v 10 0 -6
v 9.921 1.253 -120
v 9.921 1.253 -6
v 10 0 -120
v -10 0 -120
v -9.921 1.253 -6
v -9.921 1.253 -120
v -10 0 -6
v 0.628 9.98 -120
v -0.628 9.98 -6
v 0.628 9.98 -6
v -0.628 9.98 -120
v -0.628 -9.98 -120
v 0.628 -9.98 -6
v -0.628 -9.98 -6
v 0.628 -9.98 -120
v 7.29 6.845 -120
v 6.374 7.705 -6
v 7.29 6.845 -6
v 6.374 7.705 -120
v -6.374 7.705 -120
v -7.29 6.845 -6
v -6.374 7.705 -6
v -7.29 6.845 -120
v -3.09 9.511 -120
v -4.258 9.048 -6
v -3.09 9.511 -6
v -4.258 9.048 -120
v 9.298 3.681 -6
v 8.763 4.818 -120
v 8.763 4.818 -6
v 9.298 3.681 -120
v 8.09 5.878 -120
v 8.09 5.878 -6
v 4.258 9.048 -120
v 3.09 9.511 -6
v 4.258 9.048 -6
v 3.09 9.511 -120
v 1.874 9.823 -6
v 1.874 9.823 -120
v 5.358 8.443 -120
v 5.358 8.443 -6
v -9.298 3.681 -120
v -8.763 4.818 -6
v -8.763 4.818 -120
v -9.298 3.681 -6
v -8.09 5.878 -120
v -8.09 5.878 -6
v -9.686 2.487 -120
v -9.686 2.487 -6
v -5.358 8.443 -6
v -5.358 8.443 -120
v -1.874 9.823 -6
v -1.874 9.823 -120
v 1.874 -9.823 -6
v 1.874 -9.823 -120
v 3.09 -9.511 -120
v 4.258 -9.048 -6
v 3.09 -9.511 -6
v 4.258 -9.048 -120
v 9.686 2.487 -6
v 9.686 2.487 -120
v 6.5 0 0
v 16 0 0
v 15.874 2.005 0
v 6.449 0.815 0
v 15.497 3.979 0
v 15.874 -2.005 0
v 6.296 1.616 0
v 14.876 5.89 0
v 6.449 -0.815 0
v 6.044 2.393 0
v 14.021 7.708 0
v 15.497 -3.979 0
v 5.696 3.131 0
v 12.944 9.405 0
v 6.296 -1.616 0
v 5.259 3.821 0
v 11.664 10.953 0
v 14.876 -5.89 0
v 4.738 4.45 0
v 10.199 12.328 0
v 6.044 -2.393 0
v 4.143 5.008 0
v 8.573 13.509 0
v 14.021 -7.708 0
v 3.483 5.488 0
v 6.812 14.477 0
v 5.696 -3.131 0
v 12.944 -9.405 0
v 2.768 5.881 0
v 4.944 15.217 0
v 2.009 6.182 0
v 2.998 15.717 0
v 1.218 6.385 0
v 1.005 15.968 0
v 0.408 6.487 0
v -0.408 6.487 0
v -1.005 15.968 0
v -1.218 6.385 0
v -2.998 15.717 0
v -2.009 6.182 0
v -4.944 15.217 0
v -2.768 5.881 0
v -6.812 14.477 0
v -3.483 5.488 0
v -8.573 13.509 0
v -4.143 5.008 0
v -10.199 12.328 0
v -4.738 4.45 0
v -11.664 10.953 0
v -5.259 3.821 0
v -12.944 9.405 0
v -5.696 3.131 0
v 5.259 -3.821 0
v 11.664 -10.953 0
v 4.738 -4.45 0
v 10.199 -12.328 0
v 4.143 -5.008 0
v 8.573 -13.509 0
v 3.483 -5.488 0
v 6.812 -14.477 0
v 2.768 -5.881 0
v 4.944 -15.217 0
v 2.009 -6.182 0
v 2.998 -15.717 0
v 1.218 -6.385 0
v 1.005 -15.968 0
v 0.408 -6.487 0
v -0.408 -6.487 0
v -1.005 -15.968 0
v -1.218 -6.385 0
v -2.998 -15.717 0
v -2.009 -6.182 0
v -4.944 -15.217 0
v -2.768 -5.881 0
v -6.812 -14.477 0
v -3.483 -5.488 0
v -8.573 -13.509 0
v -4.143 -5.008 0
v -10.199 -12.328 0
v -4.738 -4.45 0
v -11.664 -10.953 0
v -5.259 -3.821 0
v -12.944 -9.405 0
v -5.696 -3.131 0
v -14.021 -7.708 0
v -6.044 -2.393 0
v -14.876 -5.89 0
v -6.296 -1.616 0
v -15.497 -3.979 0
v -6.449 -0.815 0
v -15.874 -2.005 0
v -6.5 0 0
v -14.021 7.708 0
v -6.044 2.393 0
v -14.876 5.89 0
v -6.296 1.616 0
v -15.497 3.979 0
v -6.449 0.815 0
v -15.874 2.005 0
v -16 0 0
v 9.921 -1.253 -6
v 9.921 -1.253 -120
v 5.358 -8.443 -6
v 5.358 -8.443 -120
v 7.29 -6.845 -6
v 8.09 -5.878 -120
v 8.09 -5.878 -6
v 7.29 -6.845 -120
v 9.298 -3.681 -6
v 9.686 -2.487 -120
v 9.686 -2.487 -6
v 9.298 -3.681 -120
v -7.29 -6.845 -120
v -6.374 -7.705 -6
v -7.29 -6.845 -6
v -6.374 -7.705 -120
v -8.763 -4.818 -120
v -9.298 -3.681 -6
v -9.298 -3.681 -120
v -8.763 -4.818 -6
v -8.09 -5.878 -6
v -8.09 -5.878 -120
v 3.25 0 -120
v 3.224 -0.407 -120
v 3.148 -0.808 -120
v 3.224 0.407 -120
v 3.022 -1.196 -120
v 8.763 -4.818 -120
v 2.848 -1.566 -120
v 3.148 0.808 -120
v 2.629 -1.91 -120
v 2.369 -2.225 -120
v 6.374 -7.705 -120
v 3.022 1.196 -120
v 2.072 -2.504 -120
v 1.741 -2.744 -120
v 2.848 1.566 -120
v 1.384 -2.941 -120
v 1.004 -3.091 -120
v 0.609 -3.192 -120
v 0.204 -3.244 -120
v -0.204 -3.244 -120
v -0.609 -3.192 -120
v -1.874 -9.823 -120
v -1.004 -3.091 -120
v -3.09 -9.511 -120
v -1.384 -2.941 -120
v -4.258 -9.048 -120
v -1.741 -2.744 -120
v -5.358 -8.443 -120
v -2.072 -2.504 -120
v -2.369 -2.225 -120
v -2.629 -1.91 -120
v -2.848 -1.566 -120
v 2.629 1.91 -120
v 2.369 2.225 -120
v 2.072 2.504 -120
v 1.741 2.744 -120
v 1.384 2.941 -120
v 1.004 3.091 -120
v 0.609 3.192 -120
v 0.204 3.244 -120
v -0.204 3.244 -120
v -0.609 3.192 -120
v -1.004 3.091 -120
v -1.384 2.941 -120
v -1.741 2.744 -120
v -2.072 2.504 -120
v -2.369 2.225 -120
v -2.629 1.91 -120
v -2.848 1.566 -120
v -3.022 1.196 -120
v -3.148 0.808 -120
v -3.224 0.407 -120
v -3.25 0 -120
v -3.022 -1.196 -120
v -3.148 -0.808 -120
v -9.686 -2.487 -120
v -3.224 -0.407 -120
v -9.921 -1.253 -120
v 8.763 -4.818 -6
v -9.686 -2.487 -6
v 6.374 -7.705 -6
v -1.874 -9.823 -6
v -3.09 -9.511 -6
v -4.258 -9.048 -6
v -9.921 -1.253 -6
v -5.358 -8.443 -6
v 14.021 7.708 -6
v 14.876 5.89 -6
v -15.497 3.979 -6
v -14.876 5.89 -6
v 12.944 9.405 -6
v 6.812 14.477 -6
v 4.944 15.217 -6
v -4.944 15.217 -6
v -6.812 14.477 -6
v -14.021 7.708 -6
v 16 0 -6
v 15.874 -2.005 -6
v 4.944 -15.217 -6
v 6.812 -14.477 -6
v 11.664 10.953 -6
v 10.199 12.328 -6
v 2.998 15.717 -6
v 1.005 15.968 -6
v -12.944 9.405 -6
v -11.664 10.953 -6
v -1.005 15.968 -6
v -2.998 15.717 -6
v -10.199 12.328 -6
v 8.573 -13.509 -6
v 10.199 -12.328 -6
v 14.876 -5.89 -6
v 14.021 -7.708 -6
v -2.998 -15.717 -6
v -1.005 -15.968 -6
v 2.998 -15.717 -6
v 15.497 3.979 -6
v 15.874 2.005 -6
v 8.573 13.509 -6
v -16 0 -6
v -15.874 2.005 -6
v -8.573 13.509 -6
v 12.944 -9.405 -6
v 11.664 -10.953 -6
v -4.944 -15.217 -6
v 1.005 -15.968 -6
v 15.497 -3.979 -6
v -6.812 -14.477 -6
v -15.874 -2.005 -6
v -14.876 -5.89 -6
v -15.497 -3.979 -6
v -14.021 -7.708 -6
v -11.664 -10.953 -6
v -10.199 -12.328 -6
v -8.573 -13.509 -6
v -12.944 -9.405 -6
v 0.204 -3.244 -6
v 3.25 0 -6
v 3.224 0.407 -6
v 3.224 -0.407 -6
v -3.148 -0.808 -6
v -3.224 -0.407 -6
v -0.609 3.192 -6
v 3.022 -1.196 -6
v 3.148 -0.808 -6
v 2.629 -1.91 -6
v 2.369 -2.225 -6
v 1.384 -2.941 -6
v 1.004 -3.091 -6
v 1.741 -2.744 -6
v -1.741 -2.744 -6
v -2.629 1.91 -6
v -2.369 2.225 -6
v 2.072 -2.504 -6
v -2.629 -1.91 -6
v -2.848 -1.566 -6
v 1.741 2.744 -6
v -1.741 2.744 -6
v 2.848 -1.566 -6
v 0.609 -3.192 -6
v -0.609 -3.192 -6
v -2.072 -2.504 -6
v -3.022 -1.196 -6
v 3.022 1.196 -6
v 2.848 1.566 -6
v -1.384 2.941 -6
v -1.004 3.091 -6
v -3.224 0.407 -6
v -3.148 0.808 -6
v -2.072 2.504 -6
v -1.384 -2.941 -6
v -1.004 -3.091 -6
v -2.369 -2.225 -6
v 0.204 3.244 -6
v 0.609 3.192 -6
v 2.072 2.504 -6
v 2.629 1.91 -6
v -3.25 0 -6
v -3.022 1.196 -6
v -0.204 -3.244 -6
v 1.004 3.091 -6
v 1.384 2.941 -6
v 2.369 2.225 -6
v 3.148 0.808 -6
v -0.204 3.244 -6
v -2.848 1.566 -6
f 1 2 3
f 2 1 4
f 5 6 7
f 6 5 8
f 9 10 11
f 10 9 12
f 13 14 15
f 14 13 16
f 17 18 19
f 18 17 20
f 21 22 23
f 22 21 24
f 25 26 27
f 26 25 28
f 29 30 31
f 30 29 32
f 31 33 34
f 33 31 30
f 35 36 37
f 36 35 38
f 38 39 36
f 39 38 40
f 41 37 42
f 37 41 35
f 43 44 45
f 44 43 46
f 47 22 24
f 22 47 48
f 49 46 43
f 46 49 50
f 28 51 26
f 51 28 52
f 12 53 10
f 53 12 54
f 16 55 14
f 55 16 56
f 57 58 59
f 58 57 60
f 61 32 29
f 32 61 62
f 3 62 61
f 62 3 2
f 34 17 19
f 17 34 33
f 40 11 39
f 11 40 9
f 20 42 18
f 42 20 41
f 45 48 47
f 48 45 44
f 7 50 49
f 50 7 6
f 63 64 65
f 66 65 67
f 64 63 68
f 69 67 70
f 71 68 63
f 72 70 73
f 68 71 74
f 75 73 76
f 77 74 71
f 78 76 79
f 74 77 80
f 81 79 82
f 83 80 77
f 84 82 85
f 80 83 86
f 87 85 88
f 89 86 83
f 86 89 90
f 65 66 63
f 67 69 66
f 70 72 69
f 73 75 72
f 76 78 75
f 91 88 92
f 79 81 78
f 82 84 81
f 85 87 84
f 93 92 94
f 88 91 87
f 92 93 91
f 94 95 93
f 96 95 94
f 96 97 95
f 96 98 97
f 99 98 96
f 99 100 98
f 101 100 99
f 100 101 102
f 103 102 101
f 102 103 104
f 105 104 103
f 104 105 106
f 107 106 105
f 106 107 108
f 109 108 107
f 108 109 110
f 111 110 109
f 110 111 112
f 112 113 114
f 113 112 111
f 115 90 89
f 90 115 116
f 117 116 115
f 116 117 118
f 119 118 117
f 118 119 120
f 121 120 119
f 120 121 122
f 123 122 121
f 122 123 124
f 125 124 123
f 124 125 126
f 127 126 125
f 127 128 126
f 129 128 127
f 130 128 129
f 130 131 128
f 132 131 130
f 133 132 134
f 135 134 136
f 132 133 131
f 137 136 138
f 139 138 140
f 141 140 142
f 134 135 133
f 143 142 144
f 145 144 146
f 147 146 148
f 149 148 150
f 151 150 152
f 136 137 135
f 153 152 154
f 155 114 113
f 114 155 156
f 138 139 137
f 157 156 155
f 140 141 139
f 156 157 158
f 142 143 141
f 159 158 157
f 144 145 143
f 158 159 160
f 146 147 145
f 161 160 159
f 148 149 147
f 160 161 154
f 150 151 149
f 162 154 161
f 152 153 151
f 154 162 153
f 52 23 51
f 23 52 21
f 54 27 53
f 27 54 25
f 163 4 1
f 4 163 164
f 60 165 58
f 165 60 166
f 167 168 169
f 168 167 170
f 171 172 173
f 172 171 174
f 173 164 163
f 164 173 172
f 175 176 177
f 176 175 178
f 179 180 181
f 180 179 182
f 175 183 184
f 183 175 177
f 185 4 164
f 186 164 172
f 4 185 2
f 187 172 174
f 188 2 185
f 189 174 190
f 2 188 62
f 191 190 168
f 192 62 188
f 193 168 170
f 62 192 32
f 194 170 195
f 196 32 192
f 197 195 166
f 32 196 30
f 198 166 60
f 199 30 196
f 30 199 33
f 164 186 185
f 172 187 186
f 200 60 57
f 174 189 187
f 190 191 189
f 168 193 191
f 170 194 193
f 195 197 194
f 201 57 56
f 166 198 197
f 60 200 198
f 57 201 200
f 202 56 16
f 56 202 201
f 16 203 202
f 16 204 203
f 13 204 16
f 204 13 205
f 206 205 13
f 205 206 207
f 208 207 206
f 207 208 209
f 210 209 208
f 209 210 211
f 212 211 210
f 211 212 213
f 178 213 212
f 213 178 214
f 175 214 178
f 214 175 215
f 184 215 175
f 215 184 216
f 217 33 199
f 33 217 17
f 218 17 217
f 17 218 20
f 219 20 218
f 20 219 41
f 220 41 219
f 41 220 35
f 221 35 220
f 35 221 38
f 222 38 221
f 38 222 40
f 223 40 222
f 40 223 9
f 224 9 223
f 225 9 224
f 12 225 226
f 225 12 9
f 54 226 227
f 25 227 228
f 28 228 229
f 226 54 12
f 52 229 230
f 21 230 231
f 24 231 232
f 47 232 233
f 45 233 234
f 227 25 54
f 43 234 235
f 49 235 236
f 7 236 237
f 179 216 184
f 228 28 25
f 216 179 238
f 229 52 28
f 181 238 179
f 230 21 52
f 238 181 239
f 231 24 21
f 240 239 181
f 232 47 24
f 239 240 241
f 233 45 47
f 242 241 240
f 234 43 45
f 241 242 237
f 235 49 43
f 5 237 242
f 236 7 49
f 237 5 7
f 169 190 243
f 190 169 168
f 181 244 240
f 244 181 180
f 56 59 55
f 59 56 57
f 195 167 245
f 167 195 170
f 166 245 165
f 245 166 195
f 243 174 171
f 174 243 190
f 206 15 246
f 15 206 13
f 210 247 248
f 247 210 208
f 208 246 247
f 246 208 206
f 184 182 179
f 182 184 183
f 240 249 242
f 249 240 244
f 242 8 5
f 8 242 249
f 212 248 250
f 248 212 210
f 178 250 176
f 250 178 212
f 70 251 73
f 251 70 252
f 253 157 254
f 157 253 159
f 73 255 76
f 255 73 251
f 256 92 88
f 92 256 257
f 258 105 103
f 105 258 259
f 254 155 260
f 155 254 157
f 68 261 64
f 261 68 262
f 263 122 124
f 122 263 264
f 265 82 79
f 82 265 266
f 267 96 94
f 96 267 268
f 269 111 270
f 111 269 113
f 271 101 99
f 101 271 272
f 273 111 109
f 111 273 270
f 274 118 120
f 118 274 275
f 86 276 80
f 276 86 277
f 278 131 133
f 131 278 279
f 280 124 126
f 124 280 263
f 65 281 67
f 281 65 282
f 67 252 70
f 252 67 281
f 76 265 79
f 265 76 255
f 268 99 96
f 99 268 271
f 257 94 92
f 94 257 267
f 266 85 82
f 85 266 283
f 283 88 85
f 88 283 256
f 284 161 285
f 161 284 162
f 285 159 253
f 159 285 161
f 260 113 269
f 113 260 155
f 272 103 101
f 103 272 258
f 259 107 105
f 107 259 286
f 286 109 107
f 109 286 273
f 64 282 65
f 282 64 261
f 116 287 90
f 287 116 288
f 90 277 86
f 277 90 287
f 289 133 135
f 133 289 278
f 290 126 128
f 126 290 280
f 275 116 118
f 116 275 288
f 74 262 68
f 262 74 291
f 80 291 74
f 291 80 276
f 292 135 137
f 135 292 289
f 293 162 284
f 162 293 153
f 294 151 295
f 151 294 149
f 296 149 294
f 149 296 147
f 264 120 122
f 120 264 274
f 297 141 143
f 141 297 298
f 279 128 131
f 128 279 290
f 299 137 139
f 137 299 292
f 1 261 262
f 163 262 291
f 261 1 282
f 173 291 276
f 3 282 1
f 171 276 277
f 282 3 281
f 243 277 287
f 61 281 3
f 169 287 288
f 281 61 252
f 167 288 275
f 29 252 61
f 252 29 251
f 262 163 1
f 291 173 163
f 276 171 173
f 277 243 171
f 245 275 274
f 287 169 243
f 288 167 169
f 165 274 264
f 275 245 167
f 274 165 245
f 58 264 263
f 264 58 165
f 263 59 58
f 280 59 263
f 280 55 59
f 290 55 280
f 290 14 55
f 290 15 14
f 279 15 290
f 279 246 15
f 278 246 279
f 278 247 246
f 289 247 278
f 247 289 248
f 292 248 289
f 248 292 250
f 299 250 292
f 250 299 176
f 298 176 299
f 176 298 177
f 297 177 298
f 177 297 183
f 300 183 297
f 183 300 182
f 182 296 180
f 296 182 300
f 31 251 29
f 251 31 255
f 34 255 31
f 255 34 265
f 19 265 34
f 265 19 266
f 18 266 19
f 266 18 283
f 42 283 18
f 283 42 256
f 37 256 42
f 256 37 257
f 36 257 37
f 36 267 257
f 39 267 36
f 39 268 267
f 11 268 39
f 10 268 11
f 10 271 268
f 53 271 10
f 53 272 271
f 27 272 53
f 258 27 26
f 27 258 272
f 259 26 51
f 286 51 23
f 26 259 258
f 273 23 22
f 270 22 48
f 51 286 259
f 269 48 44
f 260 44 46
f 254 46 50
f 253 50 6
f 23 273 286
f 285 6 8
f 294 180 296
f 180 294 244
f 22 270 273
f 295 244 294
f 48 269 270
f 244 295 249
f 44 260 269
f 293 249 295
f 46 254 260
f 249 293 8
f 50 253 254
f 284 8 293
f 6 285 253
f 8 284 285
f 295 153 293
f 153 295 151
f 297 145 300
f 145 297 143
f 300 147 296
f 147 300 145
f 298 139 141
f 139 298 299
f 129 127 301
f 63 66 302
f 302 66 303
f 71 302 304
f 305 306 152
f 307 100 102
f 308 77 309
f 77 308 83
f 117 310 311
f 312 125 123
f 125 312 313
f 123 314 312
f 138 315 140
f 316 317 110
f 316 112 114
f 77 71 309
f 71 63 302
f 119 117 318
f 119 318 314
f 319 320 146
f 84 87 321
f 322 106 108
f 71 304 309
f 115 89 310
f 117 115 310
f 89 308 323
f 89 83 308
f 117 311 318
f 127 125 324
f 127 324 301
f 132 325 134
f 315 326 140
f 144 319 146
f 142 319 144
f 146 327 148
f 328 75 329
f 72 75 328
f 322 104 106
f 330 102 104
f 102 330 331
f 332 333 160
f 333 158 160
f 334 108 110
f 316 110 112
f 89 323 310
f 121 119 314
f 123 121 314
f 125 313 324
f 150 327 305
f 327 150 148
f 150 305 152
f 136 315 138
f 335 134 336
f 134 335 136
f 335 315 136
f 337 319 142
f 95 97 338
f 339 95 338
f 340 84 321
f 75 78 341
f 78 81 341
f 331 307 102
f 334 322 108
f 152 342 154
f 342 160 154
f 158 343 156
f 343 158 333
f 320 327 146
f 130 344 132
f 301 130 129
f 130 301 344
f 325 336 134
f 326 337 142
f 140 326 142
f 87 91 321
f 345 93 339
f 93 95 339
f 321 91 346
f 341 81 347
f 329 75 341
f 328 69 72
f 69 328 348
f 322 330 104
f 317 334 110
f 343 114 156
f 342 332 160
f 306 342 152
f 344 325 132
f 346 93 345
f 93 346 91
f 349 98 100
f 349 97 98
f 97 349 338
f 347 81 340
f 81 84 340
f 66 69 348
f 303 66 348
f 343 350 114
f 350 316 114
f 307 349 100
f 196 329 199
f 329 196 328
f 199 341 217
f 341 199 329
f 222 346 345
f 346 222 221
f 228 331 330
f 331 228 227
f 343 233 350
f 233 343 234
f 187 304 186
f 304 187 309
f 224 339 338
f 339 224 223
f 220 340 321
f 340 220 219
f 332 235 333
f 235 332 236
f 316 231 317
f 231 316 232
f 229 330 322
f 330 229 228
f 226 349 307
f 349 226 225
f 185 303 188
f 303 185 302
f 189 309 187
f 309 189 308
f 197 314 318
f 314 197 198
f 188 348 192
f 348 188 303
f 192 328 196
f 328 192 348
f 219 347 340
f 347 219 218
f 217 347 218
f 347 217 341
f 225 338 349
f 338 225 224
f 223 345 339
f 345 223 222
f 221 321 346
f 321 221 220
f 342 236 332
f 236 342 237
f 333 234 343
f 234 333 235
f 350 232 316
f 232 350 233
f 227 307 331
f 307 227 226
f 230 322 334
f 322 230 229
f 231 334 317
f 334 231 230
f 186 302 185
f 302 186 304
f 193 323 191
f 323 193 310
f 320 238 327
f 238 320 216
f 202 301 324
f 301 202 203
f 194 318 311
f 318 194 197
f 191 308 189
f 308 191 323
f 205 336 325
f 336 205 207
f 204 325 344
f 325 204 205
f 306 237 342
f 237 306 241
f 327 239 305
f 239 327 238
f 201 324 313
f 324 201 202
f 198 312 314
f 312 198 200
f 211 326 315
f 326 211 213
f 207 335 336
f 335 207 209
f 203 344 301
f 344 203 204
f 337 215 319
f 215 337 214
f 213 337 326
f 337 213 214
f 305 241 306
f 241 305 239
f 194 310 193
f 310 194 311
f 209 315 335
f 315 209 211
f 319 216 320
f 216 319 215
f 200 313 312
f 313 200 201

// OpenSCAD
$fn = 50;


difference() {
	union() {
		translate(v = [0, 0, -120.0000000000]) {
			cylinder(h = 120, r = 10.0000000000);
		}
		translate(v = [0, 0, -6.0000000000]) {
			cylinder(h = 6, r = 16.0000000000);
		}
	}
	union() {
		translate(v = [0, 0, 0]) {
			rotate(a = [0, 0, 0]) {
				difference() {
					union() {
						#translate(v = [0, 0, -120.0000000000]) {
							cylinder(h = 120, r = 2.2500000000);
						}
						#translate(v = [0, 0, -6]) {
							cylinder(h = 6, r1 = 3.2500000000, r2 = 6.5000000000);
						}
						#translate(v = [0, 0, -120.0000000000]) {
							cylinder(h = 120, r = 3.2500000000);
						}
						#translate(v = [0, 0, -120.0000000000]) {
							cylinder(h = 120, r = 2.2500000000);
						}
					}
					union();
				}
			}
		}
	}
}
